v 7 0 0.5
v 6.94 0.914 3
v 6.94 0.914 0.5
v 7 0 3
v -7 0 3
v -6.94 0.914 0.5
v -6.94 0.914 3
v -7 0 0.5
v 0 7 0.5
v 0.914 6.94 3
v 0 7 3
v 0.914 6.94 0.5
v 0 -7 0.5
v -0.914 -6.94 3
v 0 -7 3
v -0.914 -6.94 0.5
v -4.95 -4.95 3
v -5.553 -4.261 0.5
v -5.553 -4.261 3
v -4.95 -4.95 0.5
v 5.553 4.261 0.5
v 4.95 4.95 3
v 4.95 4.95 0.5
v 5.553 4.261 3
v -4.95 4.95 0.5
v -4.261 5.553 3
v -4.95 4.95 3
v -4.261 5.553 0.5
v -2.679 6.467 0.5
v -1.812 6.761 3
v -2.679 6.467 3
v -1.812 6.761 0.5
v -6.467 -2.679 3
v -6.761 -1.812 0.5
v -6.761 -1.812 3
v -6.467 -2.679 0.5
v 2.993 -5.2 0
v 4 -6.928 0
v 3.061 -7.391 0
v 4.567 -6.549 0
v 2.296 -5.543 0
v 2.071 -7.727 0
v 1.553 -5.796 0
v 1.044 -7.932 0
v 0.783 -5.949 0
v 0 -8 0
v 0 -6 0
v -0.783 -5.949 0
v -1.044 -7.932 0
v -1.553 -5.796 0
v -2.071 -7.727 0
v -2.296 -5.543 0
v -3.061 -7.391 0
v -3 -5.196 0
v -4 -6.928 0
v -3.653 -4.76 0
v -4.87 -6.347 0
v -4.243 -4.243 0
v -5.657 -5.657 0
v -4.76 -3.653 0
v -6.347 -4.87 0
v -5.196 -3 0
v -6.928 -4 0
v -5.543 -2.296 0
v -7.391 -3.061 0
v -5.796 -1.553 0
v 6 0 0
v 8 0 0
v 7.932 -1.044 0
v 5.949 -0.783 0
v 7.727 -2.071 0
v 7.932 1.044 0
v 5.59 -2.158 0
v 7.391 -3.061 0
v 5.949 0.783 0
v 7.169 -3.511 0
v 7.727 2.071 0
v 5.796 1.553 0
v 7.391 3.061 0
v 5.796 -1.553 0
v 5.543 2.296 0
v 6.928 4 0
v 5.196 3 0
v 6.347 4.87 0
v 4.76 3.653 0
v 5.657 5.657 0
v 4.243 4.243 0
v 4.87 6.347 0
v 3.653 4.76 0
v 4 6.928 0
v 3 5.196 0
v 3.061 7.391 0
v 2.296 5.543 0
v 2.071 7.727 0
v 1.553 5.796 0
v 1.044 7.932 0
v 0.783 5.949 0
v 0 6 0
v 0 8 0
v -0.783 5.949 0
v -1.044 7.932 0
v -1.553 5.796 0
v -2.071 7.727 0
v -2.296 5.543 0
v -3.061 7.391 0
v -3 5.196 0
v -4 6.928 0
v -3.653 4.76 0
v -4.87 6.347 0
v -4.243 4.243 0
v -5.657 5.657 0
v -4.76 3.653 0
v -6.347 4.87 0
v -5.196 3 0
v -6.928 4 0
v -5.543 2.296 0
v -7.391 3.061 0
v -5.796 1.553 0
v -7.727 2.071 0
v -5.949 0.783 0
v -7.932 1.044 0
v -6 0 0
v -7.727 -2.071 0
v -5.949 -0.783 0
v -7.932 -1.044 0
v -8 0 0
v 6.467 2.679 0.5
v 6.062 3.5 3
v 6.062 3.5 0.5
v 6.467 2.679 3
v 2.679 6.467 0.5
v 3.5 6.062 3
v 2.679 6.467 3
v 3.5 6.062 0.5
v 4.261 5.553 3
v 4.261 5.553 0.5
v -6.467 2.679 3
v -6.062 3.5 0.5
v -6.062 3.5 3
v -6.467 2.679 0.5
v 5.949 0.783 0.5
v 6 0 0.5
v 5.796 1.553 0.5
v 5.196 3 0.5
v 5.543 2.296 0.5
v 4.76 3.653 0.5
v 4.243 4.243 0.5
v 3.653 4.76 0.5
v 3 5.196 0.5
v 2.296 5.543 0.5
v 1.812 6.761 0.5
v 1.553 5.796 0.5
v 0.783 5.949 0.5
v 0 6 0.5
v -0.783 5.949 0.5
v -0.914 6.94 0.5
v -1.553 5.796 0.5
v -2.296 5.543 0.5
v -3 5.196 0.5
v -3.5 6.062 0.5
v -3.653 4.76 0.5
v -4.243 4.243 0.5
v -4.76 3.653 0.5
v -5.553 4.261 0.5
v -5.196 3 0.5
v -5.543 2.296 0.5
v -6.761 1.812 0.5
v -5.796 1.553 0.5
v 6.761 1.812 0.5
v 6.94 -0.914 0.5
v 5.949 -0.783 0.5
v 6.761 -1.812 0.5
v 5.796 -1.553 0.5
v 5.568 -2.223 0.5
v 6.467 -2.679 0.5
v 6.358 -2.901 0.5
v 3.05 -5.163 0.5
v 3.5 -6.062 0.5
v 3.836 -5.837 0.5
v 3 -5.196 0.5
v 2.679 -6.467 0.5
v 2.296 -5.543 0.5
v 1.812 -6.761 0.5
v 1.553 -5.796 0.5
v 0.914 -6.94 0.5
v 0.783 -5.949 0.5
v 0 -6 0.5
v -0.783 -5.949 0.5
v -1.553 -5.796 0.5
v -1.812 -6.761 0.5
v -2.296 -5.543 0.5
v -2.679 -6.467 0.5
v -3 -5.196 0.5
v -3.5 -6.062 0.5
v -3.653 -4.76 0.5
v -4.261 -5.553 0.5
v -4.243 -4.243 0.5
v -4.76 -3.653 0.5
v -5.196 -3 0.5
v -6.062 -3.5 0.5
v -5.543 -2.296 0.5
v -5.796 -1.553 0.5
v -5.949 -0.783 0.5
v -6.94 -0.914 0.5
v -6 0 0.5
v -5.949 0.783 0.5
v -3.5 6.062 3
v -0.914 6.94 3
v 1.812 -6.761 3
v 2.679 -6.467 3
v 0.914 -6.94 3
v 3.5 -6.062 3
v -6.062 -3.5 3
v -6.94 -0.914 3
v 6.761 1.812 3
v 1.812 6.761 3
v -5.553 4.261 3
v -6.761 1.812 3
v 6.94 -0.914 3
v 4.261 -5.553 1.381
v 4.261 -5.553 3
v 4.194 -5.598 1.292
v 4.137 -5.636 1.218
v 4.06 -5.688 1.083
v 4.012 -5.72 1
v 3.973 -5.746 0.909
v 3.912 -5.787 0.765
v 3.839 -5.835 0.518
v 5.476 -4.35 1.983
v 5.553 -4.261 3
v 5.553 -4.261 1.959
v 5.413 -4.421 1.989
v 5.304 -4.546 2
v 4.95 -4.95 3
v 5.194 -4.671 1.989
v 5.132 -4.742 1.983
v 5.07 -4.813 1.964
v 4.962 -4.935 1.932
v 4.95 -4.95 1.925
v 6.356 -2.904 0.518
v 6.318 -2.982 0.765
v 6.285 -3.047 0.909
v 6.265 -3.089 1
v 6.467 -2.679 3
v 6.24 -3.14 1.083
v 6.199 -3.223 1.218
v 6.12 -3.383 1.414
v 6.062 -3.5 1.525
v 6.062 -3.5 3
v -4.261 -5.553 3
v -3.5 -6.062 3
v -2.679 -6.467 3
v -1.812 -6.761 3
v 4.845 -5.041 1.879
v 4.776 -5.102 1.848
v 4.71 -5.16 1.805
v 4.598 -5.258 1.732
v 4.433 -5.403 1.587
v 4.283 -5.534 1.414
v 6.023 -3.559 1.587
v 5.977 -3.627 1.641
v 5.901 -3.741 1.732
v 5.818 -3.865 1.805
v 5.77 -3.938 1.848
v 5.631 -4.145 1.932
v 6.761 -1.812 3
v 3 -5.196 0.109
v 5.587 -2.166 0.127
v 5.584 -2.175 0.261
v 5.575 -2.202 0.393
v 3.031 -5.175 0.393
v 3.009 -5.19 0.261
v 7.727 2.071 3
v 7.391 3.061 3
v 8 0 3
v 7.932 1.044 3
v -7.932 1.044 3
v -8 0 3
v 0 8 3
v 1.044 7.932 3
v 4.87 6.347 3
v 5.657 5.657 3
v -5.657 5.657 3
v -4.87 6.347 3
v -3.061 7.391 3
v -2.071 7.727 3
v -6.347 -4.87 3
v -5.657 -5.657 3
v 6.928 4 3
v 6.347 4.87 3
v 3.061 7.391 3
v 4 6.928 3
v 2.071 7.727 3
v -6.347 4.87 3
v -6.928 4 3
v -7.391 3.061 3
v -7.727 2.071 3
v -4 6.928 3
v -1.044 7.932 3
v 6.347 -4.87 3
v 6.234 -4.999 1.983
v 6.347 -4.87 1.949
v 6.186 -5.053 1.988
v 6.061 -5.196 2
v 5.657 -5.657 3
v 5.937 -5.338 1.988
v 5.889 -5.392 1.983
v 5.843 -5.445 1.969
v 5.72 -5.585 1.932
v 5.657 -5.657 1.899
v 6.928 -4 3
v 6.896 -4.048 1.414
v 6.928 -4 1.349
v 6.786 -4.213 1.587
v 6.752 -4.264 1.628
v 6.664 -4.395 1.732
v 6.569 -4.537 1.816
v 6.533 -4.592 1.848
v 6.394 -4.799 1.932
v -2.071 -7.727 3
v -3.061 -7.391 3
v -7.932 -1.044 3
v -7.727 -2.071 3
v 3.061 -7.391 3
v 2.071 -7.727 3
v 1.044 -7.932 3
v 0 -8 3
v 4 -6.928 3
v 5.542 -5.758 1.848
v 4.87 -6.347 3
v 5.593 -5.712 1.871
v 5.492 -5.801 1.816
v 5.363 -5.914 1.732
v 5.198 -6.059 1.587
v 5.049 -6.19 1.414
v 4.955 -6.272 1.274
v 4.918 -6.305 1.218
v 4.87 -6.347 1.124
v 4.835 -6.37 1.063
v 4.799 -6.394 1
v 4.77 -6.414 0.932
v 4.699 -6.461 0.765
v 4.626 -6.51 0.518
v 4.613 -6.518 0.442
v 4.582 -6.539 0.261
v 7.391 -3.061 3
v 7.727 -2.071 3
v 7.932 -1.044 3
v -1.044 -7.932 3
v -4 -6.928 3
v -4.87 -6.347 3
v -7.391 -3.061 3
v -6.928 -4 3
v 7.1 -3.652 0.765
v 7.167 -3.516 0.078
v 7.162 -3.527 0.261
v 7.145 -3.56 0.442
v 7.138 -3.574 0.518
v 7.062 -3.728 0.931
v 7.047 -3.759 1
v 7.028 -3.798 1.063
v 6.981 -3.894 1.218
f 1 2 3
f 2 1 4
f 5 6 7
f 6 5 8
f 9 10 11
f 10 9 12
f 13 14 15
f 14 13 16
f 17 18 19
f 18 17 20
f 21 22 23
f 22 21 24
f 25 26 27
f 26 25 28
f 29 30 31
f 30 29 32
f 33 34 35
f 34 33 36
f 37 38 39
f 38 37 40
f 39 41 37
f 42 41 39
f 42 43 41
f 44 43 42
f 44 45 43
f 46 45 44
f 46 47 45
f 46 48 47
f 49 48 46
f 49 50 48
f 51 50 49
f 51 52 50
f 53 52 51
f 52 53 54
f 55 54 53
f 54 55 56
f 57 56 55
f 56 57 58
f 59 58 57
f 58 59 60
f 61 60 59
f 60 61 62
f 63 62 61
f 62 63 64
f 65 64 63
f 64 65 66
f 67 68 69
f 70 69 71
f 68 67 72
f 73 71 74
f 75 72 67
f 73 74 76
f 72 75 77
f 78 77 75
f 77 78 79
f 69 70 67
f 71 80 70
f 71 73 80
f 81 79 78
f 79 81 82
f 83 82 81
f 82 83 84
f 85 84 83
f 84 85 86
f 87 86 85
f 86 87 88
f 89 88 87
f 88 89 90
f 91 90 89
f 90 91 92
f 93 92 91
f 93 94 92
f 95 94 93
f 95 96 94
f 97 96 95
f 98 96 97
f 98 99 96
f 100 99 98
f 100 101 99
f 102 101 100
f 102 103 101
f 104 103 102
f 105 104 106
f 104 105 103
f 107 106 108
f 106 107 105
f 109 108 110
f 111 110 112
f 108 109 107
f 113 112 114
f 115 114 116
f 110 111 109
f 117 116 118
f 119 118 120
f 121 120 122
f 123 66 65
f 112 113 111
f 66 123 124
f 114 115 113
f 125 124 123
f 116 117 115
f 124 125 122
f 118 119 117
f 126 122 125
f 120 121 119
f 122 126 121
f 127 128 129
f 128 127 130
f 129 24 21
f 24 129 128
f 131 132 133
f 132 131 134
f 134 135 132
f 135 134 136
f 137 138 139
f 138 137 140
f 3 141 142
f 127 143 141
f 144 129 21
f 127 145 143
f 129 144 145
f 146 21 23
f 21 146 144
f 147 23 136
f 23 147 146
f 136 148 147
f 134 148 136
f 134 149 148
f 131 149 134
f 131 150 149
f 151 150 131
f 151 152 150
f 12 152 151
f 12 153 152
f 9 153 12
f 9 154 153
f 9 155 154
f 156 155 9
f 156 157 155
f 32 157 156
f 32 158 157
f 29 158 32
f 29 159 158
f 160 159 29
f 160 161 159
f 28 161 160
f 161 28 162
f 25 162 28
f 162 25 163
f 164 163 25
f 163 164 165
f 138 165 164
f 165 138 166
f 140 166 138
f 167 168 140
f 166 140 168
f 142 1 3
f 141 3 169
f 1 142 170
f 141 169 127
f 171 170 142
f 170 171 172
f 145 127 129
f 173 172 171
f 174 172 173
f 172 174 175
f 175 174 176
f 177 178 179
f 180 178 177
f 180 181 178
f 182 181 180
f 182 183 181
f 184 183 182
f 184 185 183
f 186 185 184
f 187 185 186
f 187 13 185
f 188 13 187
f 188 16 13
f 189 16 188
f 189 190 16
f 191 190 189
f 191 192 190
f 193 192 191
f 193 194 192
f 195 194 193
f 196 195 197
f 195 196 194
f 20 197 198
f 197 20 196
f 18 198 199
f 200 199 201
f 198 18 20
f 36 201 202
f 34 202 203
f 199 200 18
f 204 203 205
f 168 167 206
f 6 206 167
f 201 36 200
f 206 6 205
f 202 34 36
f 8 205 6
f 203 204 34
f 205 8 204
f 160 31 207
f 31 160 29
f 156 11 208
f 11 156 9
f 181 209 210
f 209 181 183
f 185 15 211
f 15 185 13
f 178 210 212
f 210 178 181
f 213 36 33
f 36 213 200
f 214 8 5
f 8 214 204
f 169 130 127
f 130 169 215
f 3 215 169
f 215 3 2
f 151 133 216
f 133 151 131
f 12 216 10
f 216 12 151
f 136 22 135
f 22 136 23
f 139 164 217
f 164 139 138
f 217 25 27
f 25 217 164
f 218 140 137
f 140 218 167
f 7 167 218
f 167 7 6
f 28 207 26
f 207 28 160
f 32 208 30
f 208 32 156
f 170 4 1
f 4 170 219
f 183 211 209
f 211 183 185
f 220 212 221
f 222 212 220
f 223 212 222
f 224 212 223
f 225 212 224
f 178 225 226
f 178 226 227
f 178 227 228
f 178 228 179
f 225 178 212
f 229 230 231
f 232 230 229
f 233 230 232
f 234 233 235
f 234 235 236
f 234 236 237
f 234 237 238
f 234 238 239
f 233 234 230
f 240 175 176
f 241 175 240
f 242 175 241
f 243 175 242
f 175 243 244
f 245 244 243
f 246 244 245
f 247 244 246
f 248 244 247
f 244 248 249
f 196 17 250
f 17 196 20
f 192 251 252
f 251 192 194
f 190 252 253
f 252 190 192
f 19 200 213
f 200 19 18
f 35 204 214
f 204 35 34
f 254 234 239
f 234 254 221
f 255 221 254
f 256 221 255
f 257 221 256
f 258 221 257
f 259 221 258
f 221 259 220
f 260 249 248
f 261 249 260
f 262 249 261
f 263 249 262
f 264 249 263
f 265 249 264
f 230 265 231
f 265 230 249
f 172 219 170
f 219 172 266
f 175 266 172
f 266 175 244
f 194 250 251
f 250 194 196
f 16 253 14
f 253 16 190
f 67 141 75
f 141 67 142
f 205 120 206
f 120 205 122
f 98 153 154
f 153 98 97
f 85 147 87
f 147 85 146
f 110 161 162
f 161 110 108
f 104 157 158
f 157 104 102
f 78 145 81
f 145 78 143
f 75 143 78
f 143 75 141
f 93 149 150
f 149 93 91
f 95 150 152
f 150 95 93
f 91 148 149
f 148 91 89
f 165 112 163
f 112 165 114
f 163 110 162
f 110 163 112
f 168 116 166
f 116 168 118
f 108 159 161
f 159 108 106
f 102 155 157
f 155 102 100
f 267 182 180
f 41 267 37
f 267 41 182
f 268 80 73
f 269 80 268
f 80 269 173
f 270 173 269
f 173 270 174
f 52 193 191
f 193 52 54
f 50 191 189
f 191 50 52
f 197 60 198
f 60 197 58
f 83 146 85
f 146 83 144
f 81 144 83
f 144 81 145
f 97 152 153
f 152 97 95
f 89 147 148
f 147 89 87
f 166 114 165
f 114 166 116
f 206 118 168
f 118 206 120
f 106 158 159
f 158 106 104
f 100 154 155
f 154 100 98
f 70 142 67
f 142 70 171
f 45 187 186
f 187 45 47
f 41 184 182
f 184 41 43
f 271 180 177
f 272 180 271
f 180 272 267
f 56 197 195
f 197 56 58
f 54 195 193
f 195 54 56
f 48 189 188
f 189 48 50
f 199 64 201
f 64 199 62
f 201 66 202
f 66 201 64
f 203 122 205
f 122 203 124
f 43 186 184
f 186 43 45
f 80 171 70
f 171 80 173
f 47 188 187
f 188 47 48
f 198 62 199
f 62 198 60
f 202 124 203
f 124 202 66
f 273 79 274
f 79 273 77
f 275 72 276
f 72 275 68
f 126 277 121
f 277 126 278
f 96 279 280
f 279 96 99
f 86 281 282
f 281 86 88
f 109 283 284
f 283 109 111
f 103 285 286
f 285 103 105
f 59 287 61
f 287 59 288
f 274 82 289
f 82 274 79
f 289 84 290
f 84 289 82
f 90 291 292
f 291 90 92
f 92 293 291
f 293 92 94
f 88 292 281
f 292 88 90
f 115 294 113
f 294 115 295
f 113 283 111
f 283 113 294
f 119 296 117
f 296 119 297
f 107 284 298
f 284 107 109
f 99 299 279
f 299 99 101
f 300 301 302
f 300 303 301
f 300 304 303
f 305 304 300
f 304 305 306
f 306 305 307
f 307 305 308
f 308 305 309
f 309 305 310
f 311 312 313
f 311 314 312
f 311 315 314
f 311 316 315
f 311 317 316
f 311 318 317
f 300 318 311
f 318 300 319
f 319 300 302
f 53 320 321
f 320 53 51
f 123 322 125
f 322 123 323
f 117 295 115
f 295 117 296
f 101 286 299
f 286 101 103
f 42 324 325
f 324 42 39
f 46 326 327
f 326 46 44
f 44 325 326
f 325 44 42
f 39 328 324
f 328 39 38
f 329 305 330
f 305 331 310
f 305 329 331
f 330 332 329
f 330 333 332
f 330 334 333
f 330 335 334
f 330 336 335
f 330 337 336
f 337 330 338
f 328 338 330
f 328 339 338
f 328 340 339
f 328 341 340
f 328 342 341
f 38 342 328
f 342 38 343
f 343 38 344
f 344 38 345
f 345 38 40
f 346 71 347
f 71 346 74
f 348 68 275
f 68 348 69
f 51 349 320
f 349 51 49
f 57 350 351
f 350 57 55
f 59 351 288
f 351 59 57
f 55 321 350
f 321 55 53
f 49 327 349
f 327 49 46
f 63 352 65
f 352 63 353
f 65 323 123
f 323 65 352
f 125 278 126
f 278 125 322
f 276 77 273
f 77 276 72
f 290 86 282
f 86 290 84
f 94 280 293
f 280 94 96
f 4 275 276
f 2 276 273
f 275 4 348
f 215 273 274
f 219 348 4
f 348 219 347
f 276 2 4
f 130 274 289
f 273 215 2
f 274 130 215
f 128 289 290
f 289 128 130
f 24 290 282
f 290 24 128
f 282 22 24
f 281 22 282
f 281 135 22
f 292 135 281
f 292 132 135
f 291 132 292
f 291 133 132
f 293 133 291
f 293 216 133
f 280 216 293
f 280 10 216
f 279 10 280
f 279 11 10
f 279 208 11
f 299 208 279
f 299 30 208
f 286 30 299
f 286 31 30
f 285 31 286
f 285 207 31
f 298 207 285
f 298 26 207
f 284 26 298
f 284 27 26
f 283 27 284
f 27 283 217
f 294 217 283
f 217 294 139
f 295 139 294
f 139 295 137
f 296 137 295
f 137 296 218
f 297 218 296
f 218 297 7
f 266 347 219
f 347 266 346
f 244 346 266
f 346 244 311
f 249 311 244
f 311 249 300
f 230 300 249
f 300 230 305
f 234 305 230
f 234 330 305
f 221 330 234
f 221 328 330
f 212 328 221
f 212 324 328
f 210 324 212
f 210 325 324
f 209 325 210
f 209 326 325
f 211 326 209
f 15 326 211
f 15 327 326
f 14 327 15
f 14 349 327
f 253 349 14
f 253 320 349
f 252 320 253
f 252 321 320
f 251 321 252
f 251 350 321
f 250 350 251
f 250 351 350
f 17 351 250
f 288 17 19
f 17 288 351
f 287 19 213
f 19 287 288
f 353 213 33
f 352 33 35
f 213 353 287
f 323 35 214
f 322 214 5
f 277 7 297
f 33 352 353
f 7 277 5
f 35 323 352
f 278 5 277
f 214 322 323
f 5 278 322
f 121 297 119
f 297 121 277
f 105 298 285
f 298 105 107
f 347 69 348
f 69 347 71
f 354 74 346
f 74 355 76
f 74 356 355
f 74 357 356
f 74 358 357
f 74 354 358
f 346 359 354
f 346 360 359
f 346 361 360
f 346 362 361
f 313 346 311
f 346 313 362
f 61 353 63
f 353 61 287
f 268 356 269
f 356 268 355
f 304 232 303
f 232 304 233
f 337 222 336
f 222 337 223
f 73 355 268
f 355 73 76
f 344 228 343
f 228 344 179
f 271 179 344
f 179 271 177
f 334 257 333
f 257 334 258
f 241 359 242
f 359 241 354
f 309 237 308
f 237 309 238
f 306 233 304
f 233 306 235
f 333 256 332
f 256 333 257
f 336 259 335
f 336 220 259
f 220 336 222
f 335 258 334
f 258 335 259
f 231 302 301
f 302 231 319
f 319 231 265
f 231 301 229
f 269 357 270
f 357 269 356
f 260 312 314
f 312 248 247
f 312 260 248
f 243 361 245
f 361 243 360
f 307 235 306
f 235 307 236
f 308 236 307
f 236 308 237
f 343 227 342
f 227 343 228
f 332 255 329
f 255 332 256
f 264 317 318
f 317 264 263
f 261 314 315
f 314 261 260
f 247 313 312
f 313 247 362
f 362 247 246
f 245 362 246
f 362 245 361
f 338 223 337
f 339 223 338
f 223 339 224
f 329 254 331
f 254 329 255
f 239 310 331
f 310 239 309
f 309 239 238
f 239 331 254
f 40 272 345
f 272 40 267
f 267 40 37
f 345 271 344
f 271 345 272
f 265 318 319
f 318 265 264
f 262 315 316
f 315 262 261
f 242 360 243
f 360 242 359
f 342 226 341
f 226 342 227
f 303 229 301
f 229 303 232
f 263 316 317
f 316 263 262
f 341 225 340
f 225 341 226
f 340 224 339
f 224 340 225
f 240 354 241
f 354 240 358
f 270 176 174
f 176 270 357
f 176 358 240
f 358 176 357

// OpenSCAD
// file: ../build_environments.scad
// build_environments.scad: modules to build level sections
//

module pool(diameter=10.0, wall_height=2.0, step_width=3.0, connections=[])
{
    difference() {
        union() {
        difference() {
            cylinder(h=0.5,r1=diameter+step_width,r2=diameter+step_width,$fn=48);
            translate([0,0,-0.1])
                cylinder(h=0.7,r1=diameter,r2=diameter,$fn=48);
        }
        difference() {
            cylinder(h=wall_height,r1=diameter+step_width+1.0,r2=diameter+step_width+1.0,$fn=48);
            translate([0,0,-0.1])
                cylinder(h=wall_height+0.2,r1=diameter+step_width,r2=diameter+step_width,$fn=48);
        }
        }
    
        for (c = connections)
        {
            rotate([0,90,0]) {
                angle = atan2(c[1],c[0]);
                rotate([-angle,0,0]) {
                    cylinder(h=diameter+5.0,r1=c[2],r2=c[2],$fn=48);
                }
            }
        }
    }
}

module straight(length=10.0, width=2.0, dy1=0.0, dy2=0.0, dz=0.0)
{
    dims = [0, 0, 0, 0, 0, (dz/length)];
    matrix = [
        [ 1, dims[0], dims[1], 0 ],
        [ dims[2], 1, dims[4], 0 ],
        [ dims[5], dims[3], 1, 0 ],
        [ 0, 0, 0, 1 ]
    ];
    multmatrix(matrix)
    difference() {
        translate([dy1,0,0])
        union() {
            rotate([0,90,0]) {
                difference() {
                    cylinder(h=(length-dy1-dy2),r1=width+1.0,r2=width+1.0,$fn=24);
                    translate([0,0,-0.1])
                        cylinder(h=(length-dy1-dy2+0.2),r1=width,r2=width,$fn=24);
                }
                difference() {
                    cylinder(h=1.0,r1=width+2.0,r2=width+2.0,$fn=24);
                    translate([0,0,-0.1])
                        cylinder(h=1.2,r1=width,r2=width,$fn=24);
                }
                translate([0,0,(length-dy1-dy2)-1.0]) {
                    difference() {
                        cylinder(h=1.0,r1=width+2.0,r2=width+2.0,$fn=24);
                        translate([0,0,-0.1])
                            cylinder(h=1.2,r1=width,r2=width,$fn=24);
                    }
                }
            }
        }
        translate([0,0,-(2*width+4.0)/2])
            cube([3*length,3*length,2*width+4.0],center=true);
    }
}

module curve(p0=[0,0], center=[0,0], dir=1, angle=0.0, width=2.0)
{
    radius = sqrt((p0[0]-center[0])*(p0[0]-center[0]) + (p0[1]-center[1])*(p0[1]-center[1]));
    if (dir == 0) {
        difference() {
            rotate([0,0,-90])
            difference() {
                rotate_extrude(angle = angle, convexity = 10, $fn=32)
                    translate([radius, 0, 0])
                        circle(r = width+1.0,$fn=24);
                rotate([0,0,-1.0])
                    rotate_extrude(angle = angle+2.0, convexity = 10, $fn=32)
                        translate([radius, 0, 0])
                            circle(r = width,$fn=24);
            }
            translate([0,0,-(2*width+4.0)/2])
                cube([5*radius,5*radius,2*width+4.0],center=true);
        }
    }
    else {
        difference() {
            rotate([0,0,90])
            difference() {
                rotate_extrude(angle = -angle, convexity = 10, $fn=32)
                    translate([radius, 0, 0])
                        circle(r = width+1.0,$fn=24);
                rotate([0,0,1.0])
                    rotate_extrude(angle = -angle-2.0, convexity = 10, $fn=32)
                        translate([radius, 0, 0])
                            circle(r = width,$fn=24);
            }
            translate([0,0,-(2*width+4.0)/2])
                cube([5*radius,5*radius,2*width+4.0],center=true);
        }
    }

}

// test pool
//pool(diameter=12.0000, wall_height=3.0000, step_width=3.0000, connections=[[0.0000,-26.0000,2.0000], [23.6074,0.0000,2.0000]]);

// test straight, slope
//straight(length=26.0000, width=2.0000, dy1=11.8322, dy2=6.7082, dz=0.0000);
//straight(length=29.1549, width=12.0000, dy1=0.0000, dy2=0.0000, dz=-15.0000);

// test curve
//curve(p0=[23.6074, 0.0000], center=[23.6074, 5.0000], dir=0, angle=60.1011, width=2.0000);
//curve(p0=[33.6426, 12.4219], center=[37.9771, 9.9295], dir=1, angle=120.4627, width=2.0000);
// main file
use <../build_environments.scad>;
pool(diameter=6.0000, wall_height=3.0000, step_width=1.0000, connections=[[14.0000,-12.0000,2.0000]]);
